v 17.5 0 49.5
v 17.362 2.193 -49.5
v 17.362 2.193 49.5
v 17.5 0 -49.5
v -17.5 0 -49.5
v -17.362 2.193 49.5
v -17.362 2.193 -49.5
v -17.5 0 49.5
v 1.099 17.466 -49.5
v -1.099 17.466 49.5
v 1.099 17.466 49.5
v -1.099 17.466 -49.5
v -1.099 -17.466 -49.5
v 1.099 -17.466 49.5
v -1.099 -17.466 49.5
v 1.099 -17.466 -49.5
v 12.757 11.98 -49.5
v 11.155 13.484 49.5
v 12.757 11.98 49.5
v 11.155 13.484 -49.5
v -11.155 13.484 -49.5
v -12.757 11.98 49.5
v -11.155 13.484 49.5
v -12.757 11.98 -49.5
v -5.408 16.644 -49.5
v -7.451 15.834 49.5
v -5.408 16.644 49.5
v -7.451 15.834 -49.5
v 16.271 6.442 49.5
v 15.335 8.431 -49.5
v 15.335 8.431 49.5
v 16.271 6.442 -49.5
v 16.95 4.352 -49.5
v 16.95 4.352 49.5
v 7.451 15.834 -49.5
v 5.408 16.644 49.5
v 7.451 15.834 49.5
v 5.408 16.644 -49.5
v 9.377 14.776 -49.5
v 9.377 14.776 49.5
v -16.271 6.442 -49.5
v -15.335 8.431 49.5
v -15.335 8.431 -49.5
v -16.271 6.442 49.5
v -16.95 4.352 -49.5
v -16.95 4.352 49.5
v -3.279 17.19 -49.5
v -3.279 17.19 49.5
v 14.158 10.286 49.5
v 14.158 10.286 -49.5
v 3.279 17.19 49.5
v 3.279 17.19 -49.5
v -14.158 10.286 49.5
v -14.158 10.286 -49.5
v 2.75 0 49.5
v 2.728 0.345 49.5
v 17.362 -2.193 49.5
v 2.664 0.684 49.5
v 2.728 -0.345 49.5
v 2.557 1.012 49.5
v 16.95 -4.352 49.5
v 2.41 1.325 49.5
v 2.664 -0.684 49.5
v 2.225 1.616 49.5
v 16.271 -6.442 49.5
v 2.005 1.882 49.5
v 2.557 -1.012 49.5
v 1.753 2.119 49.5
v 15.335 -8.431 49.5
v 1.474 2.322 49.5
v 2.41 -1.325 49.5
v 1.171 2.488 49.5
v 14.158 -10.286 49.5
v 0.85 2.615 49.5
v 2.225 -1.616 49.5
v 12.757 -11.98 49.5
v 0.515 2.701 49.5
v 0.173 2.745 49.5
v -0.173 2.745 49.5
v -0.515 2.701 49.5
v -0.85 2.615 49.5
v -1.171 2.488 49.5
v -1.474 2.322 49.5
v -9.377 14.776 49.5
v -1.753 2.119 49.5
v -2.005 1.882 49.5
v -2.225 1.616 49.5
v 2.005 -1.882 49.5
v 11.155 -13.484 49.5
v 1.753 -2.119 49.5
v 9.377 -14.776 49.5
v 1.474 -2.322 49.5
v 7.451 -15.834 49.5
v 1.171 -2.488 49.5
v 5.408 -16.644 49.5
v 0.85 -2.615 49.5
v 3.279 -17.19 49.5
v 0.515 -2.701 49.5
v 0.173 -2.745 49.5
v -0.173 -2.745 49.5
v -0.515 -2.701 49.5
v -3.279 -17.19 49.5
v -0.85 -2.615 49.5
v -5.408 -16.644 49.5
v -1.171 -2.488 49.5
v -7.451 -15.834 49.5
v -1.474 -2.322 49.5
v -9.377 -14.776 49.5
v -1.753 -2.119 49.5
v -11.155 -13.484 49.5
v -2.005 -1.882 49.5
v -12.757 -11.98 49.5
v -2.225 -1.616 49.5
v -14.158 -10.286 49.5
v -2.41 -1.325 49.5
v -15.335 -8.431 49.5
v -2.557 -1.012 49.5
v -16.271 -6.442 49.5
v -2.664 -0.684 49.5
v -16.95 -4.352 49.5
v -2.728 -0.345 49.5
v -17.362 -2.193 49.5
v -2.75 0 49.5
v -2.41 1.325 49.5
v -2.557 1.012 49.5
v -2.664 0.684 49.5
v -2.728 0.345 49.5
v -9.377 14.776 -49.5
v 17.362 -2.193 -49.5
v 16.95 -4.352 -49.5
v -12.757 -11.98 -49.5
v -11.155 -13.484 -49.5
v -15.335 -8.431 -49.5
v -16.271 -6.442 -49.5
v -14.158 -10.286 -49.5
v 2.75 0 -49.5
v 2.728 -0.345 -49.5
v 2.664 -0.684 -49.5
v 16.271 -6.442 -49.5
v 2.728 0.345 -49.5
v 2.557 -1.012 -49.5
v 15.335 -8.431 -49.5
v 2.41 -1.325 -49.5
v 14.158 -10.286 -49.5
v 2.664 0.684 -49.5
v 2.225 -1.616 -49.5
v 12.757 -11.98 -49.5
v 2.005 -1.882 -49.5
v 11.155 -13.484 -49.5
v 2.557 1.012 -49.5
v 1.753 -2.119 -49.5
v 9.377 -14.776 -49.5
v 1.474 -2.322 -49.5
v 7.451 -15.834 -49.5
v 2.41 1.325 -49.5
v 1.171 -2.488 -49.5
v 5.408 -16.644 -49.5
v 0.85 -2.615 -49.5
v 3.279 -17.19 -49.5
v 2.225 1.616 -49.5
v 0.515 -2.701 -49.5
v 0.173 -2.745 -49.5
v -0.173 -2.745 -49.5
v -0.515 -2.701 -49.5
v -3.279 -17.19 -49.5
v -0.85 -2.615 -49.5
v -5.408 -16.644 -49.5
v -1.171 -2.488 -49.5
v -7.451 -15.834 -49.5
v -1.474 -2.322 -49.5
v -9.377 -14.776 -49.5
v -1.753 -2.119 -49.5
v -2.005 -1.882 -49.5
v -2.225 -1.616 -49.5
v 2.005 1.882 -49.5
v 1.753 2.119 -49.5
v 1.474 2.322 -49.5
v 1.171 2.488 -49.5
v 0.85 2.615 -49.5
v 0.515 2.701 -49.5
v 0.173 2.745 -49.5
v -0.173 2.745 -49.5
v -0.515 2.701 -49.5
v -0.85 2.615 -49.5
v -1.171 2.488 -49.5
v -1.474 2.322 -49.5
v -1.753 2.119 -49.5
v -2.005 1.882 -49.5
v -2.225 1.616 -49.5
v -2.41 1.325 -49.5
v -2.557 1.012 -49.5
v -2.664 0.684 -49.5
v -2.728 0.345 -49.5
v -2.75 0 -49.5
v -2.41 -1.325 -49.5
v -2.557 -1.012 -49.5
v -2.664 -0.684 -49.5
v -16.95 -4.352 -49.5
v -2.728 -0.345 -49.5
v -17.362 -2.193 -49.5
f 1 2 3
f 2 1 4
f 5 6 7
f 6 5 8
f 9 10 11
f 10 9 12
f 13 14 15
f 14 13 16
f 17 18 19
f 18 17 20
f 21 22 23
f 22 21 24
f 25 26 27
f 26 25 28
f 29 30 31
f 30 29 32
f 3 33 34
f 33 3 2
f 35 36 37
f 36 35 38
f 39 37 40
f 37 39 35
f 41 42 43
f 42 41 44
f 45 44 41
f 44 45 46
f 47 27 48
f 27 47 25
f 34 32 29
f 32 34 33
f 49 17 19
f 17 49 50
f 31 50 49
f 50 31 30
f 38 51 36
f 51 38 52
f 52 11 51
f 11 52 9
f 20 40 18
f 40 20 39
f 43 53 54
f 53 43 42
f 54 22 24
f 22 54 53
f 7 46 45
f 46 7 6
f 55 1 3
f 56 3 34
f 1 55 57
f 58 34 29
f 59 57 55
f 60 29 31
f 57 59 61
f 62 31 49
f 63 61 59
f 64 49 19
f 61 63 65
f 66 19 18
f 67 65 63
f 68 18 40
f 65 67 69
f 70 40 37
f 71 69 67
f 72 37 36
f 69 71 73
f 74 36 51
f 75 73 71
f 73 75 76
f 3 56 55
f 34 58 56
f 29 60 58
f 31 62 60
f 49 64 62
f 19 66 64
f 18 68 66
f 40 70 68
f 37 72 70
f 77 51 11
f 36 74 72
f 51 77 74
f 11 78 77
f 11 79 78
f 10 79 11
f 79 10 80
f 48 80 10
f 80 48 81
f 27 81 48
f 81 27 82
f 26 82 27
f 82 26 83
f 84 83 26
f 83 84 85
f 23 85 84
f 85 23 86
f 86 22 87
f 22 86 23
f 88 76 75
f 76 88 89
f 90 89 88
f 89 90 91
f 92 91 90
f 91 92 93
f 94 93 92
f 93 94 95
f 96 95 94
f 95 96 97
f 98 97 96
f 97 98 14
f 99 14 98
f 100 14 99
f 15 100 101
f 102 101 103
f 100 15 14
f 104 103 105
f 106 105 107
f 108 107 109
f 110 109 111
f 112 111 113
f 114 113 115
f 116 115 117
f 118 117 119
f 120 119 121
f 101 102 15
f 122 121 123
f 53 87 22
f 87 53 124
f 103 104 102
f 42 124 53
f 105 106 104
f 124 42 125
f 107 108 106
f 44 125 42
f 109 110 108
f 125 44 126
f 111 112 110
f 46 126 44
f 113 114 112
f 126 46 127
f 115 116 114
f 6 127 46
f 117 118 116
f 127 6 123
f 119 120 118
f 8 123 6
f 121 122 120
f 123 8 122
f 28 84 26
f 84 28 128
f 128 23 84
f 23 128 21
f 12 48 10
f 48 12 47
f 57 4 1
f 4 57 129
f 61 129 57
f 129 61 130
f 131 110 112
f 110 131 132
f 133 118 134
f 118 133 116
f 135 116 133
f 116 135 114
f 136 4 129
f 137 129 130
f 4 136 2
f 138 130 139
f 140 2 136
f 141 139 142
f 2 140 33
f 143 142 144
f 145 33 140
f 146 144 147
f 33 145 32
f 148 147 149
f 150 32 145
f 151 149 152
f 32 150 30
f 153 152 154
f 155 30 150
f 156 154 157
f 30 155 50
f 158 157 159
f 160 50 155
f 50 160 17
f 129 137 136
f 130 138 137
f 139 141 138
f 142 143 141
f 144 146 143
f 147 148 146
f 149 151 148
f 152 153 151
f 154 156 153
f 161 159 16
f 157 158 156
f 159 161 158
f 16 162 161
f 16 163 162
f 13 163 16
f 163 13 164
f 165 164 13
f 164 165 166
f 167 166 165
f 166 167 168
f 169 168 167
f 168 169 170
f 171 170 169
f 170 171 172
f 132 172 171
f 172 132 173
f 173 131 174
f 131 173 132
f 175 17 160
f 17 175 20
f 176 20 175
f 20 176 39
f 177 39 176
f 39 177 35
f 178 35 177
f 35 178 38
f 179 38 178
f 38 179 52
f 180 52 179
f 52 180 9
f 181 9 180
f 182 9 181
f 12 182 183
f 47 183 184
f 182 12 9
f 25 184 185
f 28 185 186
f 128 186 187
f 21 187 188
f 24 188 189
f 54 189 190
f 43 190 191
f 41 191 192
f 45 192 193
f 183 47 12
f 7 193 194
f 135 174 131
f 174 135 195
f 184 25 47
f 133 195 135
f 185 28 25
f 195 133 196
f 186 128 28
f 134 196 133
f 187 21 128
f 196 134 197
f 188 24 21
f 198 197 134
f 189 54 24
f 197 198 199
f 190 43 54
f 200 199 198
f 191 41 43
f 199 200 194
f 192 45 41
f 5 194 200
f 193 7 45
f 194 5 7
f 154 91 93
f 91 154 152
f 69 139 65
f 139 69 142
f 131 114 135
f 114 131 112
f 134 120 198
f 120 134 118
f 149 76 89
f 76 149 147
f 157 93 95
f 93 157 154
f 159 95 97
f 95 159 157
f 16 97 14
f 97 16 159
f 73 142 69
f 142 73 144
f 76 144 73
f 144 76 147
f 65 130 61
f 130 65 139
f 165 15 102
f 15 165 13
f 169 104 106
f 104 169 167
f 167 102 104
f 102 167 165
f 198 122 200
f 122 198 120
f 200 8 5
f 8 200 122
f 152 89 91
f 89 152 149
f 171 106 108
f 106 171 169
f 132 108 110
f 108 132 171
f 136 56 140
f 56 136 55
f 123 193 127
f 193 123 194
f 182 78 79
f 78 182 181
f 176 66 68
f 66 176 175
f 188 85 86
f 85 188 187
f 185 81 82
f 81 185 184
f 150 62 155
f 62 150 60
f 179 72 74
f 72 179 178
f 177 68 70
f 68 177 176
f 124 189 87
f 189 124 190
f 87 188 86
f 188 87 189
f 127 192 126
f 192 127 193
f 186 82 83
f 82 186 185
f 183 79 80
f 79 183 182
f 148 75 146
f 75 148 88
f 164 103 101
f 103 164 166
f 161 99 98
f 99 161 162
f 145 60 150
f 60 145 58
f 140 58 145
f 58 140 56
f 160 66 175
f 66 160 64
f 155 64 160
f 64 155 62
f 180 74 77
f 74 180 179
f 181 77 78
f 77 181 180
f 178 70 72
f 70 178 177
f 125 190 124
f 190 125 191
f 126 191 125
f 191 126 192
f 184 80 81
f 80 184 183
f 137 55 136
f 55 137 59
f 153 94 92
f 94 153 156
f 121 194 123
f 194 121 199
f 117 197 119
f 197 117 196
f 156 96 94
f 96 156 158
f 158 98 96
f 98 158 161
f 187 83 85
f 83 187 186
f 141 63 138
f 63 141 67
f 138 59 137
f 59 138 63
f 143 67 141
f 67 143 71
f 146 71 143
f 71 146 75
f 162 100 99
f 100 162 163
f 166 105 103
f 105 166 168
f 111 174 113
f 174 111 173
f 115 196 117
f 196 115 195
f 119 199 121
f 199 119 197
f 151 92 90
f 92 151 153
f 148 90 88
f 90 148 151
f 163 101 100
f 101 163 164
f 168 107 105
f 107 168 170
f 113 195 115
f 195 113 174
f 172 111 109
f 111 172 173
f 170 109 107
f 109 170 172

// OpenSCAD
$fn = 50;


difference() {
	union() {
		translate(v = [0, 0, -49.5000000000]) {
			cylinder(h = 99, r = 17.5000000000);
		}
	}
	union() {
		translate(v = [0, 0, -100.0000000000]) {
			cylinder(h = 200, r = 2.7500000000);
		}
	}
}
